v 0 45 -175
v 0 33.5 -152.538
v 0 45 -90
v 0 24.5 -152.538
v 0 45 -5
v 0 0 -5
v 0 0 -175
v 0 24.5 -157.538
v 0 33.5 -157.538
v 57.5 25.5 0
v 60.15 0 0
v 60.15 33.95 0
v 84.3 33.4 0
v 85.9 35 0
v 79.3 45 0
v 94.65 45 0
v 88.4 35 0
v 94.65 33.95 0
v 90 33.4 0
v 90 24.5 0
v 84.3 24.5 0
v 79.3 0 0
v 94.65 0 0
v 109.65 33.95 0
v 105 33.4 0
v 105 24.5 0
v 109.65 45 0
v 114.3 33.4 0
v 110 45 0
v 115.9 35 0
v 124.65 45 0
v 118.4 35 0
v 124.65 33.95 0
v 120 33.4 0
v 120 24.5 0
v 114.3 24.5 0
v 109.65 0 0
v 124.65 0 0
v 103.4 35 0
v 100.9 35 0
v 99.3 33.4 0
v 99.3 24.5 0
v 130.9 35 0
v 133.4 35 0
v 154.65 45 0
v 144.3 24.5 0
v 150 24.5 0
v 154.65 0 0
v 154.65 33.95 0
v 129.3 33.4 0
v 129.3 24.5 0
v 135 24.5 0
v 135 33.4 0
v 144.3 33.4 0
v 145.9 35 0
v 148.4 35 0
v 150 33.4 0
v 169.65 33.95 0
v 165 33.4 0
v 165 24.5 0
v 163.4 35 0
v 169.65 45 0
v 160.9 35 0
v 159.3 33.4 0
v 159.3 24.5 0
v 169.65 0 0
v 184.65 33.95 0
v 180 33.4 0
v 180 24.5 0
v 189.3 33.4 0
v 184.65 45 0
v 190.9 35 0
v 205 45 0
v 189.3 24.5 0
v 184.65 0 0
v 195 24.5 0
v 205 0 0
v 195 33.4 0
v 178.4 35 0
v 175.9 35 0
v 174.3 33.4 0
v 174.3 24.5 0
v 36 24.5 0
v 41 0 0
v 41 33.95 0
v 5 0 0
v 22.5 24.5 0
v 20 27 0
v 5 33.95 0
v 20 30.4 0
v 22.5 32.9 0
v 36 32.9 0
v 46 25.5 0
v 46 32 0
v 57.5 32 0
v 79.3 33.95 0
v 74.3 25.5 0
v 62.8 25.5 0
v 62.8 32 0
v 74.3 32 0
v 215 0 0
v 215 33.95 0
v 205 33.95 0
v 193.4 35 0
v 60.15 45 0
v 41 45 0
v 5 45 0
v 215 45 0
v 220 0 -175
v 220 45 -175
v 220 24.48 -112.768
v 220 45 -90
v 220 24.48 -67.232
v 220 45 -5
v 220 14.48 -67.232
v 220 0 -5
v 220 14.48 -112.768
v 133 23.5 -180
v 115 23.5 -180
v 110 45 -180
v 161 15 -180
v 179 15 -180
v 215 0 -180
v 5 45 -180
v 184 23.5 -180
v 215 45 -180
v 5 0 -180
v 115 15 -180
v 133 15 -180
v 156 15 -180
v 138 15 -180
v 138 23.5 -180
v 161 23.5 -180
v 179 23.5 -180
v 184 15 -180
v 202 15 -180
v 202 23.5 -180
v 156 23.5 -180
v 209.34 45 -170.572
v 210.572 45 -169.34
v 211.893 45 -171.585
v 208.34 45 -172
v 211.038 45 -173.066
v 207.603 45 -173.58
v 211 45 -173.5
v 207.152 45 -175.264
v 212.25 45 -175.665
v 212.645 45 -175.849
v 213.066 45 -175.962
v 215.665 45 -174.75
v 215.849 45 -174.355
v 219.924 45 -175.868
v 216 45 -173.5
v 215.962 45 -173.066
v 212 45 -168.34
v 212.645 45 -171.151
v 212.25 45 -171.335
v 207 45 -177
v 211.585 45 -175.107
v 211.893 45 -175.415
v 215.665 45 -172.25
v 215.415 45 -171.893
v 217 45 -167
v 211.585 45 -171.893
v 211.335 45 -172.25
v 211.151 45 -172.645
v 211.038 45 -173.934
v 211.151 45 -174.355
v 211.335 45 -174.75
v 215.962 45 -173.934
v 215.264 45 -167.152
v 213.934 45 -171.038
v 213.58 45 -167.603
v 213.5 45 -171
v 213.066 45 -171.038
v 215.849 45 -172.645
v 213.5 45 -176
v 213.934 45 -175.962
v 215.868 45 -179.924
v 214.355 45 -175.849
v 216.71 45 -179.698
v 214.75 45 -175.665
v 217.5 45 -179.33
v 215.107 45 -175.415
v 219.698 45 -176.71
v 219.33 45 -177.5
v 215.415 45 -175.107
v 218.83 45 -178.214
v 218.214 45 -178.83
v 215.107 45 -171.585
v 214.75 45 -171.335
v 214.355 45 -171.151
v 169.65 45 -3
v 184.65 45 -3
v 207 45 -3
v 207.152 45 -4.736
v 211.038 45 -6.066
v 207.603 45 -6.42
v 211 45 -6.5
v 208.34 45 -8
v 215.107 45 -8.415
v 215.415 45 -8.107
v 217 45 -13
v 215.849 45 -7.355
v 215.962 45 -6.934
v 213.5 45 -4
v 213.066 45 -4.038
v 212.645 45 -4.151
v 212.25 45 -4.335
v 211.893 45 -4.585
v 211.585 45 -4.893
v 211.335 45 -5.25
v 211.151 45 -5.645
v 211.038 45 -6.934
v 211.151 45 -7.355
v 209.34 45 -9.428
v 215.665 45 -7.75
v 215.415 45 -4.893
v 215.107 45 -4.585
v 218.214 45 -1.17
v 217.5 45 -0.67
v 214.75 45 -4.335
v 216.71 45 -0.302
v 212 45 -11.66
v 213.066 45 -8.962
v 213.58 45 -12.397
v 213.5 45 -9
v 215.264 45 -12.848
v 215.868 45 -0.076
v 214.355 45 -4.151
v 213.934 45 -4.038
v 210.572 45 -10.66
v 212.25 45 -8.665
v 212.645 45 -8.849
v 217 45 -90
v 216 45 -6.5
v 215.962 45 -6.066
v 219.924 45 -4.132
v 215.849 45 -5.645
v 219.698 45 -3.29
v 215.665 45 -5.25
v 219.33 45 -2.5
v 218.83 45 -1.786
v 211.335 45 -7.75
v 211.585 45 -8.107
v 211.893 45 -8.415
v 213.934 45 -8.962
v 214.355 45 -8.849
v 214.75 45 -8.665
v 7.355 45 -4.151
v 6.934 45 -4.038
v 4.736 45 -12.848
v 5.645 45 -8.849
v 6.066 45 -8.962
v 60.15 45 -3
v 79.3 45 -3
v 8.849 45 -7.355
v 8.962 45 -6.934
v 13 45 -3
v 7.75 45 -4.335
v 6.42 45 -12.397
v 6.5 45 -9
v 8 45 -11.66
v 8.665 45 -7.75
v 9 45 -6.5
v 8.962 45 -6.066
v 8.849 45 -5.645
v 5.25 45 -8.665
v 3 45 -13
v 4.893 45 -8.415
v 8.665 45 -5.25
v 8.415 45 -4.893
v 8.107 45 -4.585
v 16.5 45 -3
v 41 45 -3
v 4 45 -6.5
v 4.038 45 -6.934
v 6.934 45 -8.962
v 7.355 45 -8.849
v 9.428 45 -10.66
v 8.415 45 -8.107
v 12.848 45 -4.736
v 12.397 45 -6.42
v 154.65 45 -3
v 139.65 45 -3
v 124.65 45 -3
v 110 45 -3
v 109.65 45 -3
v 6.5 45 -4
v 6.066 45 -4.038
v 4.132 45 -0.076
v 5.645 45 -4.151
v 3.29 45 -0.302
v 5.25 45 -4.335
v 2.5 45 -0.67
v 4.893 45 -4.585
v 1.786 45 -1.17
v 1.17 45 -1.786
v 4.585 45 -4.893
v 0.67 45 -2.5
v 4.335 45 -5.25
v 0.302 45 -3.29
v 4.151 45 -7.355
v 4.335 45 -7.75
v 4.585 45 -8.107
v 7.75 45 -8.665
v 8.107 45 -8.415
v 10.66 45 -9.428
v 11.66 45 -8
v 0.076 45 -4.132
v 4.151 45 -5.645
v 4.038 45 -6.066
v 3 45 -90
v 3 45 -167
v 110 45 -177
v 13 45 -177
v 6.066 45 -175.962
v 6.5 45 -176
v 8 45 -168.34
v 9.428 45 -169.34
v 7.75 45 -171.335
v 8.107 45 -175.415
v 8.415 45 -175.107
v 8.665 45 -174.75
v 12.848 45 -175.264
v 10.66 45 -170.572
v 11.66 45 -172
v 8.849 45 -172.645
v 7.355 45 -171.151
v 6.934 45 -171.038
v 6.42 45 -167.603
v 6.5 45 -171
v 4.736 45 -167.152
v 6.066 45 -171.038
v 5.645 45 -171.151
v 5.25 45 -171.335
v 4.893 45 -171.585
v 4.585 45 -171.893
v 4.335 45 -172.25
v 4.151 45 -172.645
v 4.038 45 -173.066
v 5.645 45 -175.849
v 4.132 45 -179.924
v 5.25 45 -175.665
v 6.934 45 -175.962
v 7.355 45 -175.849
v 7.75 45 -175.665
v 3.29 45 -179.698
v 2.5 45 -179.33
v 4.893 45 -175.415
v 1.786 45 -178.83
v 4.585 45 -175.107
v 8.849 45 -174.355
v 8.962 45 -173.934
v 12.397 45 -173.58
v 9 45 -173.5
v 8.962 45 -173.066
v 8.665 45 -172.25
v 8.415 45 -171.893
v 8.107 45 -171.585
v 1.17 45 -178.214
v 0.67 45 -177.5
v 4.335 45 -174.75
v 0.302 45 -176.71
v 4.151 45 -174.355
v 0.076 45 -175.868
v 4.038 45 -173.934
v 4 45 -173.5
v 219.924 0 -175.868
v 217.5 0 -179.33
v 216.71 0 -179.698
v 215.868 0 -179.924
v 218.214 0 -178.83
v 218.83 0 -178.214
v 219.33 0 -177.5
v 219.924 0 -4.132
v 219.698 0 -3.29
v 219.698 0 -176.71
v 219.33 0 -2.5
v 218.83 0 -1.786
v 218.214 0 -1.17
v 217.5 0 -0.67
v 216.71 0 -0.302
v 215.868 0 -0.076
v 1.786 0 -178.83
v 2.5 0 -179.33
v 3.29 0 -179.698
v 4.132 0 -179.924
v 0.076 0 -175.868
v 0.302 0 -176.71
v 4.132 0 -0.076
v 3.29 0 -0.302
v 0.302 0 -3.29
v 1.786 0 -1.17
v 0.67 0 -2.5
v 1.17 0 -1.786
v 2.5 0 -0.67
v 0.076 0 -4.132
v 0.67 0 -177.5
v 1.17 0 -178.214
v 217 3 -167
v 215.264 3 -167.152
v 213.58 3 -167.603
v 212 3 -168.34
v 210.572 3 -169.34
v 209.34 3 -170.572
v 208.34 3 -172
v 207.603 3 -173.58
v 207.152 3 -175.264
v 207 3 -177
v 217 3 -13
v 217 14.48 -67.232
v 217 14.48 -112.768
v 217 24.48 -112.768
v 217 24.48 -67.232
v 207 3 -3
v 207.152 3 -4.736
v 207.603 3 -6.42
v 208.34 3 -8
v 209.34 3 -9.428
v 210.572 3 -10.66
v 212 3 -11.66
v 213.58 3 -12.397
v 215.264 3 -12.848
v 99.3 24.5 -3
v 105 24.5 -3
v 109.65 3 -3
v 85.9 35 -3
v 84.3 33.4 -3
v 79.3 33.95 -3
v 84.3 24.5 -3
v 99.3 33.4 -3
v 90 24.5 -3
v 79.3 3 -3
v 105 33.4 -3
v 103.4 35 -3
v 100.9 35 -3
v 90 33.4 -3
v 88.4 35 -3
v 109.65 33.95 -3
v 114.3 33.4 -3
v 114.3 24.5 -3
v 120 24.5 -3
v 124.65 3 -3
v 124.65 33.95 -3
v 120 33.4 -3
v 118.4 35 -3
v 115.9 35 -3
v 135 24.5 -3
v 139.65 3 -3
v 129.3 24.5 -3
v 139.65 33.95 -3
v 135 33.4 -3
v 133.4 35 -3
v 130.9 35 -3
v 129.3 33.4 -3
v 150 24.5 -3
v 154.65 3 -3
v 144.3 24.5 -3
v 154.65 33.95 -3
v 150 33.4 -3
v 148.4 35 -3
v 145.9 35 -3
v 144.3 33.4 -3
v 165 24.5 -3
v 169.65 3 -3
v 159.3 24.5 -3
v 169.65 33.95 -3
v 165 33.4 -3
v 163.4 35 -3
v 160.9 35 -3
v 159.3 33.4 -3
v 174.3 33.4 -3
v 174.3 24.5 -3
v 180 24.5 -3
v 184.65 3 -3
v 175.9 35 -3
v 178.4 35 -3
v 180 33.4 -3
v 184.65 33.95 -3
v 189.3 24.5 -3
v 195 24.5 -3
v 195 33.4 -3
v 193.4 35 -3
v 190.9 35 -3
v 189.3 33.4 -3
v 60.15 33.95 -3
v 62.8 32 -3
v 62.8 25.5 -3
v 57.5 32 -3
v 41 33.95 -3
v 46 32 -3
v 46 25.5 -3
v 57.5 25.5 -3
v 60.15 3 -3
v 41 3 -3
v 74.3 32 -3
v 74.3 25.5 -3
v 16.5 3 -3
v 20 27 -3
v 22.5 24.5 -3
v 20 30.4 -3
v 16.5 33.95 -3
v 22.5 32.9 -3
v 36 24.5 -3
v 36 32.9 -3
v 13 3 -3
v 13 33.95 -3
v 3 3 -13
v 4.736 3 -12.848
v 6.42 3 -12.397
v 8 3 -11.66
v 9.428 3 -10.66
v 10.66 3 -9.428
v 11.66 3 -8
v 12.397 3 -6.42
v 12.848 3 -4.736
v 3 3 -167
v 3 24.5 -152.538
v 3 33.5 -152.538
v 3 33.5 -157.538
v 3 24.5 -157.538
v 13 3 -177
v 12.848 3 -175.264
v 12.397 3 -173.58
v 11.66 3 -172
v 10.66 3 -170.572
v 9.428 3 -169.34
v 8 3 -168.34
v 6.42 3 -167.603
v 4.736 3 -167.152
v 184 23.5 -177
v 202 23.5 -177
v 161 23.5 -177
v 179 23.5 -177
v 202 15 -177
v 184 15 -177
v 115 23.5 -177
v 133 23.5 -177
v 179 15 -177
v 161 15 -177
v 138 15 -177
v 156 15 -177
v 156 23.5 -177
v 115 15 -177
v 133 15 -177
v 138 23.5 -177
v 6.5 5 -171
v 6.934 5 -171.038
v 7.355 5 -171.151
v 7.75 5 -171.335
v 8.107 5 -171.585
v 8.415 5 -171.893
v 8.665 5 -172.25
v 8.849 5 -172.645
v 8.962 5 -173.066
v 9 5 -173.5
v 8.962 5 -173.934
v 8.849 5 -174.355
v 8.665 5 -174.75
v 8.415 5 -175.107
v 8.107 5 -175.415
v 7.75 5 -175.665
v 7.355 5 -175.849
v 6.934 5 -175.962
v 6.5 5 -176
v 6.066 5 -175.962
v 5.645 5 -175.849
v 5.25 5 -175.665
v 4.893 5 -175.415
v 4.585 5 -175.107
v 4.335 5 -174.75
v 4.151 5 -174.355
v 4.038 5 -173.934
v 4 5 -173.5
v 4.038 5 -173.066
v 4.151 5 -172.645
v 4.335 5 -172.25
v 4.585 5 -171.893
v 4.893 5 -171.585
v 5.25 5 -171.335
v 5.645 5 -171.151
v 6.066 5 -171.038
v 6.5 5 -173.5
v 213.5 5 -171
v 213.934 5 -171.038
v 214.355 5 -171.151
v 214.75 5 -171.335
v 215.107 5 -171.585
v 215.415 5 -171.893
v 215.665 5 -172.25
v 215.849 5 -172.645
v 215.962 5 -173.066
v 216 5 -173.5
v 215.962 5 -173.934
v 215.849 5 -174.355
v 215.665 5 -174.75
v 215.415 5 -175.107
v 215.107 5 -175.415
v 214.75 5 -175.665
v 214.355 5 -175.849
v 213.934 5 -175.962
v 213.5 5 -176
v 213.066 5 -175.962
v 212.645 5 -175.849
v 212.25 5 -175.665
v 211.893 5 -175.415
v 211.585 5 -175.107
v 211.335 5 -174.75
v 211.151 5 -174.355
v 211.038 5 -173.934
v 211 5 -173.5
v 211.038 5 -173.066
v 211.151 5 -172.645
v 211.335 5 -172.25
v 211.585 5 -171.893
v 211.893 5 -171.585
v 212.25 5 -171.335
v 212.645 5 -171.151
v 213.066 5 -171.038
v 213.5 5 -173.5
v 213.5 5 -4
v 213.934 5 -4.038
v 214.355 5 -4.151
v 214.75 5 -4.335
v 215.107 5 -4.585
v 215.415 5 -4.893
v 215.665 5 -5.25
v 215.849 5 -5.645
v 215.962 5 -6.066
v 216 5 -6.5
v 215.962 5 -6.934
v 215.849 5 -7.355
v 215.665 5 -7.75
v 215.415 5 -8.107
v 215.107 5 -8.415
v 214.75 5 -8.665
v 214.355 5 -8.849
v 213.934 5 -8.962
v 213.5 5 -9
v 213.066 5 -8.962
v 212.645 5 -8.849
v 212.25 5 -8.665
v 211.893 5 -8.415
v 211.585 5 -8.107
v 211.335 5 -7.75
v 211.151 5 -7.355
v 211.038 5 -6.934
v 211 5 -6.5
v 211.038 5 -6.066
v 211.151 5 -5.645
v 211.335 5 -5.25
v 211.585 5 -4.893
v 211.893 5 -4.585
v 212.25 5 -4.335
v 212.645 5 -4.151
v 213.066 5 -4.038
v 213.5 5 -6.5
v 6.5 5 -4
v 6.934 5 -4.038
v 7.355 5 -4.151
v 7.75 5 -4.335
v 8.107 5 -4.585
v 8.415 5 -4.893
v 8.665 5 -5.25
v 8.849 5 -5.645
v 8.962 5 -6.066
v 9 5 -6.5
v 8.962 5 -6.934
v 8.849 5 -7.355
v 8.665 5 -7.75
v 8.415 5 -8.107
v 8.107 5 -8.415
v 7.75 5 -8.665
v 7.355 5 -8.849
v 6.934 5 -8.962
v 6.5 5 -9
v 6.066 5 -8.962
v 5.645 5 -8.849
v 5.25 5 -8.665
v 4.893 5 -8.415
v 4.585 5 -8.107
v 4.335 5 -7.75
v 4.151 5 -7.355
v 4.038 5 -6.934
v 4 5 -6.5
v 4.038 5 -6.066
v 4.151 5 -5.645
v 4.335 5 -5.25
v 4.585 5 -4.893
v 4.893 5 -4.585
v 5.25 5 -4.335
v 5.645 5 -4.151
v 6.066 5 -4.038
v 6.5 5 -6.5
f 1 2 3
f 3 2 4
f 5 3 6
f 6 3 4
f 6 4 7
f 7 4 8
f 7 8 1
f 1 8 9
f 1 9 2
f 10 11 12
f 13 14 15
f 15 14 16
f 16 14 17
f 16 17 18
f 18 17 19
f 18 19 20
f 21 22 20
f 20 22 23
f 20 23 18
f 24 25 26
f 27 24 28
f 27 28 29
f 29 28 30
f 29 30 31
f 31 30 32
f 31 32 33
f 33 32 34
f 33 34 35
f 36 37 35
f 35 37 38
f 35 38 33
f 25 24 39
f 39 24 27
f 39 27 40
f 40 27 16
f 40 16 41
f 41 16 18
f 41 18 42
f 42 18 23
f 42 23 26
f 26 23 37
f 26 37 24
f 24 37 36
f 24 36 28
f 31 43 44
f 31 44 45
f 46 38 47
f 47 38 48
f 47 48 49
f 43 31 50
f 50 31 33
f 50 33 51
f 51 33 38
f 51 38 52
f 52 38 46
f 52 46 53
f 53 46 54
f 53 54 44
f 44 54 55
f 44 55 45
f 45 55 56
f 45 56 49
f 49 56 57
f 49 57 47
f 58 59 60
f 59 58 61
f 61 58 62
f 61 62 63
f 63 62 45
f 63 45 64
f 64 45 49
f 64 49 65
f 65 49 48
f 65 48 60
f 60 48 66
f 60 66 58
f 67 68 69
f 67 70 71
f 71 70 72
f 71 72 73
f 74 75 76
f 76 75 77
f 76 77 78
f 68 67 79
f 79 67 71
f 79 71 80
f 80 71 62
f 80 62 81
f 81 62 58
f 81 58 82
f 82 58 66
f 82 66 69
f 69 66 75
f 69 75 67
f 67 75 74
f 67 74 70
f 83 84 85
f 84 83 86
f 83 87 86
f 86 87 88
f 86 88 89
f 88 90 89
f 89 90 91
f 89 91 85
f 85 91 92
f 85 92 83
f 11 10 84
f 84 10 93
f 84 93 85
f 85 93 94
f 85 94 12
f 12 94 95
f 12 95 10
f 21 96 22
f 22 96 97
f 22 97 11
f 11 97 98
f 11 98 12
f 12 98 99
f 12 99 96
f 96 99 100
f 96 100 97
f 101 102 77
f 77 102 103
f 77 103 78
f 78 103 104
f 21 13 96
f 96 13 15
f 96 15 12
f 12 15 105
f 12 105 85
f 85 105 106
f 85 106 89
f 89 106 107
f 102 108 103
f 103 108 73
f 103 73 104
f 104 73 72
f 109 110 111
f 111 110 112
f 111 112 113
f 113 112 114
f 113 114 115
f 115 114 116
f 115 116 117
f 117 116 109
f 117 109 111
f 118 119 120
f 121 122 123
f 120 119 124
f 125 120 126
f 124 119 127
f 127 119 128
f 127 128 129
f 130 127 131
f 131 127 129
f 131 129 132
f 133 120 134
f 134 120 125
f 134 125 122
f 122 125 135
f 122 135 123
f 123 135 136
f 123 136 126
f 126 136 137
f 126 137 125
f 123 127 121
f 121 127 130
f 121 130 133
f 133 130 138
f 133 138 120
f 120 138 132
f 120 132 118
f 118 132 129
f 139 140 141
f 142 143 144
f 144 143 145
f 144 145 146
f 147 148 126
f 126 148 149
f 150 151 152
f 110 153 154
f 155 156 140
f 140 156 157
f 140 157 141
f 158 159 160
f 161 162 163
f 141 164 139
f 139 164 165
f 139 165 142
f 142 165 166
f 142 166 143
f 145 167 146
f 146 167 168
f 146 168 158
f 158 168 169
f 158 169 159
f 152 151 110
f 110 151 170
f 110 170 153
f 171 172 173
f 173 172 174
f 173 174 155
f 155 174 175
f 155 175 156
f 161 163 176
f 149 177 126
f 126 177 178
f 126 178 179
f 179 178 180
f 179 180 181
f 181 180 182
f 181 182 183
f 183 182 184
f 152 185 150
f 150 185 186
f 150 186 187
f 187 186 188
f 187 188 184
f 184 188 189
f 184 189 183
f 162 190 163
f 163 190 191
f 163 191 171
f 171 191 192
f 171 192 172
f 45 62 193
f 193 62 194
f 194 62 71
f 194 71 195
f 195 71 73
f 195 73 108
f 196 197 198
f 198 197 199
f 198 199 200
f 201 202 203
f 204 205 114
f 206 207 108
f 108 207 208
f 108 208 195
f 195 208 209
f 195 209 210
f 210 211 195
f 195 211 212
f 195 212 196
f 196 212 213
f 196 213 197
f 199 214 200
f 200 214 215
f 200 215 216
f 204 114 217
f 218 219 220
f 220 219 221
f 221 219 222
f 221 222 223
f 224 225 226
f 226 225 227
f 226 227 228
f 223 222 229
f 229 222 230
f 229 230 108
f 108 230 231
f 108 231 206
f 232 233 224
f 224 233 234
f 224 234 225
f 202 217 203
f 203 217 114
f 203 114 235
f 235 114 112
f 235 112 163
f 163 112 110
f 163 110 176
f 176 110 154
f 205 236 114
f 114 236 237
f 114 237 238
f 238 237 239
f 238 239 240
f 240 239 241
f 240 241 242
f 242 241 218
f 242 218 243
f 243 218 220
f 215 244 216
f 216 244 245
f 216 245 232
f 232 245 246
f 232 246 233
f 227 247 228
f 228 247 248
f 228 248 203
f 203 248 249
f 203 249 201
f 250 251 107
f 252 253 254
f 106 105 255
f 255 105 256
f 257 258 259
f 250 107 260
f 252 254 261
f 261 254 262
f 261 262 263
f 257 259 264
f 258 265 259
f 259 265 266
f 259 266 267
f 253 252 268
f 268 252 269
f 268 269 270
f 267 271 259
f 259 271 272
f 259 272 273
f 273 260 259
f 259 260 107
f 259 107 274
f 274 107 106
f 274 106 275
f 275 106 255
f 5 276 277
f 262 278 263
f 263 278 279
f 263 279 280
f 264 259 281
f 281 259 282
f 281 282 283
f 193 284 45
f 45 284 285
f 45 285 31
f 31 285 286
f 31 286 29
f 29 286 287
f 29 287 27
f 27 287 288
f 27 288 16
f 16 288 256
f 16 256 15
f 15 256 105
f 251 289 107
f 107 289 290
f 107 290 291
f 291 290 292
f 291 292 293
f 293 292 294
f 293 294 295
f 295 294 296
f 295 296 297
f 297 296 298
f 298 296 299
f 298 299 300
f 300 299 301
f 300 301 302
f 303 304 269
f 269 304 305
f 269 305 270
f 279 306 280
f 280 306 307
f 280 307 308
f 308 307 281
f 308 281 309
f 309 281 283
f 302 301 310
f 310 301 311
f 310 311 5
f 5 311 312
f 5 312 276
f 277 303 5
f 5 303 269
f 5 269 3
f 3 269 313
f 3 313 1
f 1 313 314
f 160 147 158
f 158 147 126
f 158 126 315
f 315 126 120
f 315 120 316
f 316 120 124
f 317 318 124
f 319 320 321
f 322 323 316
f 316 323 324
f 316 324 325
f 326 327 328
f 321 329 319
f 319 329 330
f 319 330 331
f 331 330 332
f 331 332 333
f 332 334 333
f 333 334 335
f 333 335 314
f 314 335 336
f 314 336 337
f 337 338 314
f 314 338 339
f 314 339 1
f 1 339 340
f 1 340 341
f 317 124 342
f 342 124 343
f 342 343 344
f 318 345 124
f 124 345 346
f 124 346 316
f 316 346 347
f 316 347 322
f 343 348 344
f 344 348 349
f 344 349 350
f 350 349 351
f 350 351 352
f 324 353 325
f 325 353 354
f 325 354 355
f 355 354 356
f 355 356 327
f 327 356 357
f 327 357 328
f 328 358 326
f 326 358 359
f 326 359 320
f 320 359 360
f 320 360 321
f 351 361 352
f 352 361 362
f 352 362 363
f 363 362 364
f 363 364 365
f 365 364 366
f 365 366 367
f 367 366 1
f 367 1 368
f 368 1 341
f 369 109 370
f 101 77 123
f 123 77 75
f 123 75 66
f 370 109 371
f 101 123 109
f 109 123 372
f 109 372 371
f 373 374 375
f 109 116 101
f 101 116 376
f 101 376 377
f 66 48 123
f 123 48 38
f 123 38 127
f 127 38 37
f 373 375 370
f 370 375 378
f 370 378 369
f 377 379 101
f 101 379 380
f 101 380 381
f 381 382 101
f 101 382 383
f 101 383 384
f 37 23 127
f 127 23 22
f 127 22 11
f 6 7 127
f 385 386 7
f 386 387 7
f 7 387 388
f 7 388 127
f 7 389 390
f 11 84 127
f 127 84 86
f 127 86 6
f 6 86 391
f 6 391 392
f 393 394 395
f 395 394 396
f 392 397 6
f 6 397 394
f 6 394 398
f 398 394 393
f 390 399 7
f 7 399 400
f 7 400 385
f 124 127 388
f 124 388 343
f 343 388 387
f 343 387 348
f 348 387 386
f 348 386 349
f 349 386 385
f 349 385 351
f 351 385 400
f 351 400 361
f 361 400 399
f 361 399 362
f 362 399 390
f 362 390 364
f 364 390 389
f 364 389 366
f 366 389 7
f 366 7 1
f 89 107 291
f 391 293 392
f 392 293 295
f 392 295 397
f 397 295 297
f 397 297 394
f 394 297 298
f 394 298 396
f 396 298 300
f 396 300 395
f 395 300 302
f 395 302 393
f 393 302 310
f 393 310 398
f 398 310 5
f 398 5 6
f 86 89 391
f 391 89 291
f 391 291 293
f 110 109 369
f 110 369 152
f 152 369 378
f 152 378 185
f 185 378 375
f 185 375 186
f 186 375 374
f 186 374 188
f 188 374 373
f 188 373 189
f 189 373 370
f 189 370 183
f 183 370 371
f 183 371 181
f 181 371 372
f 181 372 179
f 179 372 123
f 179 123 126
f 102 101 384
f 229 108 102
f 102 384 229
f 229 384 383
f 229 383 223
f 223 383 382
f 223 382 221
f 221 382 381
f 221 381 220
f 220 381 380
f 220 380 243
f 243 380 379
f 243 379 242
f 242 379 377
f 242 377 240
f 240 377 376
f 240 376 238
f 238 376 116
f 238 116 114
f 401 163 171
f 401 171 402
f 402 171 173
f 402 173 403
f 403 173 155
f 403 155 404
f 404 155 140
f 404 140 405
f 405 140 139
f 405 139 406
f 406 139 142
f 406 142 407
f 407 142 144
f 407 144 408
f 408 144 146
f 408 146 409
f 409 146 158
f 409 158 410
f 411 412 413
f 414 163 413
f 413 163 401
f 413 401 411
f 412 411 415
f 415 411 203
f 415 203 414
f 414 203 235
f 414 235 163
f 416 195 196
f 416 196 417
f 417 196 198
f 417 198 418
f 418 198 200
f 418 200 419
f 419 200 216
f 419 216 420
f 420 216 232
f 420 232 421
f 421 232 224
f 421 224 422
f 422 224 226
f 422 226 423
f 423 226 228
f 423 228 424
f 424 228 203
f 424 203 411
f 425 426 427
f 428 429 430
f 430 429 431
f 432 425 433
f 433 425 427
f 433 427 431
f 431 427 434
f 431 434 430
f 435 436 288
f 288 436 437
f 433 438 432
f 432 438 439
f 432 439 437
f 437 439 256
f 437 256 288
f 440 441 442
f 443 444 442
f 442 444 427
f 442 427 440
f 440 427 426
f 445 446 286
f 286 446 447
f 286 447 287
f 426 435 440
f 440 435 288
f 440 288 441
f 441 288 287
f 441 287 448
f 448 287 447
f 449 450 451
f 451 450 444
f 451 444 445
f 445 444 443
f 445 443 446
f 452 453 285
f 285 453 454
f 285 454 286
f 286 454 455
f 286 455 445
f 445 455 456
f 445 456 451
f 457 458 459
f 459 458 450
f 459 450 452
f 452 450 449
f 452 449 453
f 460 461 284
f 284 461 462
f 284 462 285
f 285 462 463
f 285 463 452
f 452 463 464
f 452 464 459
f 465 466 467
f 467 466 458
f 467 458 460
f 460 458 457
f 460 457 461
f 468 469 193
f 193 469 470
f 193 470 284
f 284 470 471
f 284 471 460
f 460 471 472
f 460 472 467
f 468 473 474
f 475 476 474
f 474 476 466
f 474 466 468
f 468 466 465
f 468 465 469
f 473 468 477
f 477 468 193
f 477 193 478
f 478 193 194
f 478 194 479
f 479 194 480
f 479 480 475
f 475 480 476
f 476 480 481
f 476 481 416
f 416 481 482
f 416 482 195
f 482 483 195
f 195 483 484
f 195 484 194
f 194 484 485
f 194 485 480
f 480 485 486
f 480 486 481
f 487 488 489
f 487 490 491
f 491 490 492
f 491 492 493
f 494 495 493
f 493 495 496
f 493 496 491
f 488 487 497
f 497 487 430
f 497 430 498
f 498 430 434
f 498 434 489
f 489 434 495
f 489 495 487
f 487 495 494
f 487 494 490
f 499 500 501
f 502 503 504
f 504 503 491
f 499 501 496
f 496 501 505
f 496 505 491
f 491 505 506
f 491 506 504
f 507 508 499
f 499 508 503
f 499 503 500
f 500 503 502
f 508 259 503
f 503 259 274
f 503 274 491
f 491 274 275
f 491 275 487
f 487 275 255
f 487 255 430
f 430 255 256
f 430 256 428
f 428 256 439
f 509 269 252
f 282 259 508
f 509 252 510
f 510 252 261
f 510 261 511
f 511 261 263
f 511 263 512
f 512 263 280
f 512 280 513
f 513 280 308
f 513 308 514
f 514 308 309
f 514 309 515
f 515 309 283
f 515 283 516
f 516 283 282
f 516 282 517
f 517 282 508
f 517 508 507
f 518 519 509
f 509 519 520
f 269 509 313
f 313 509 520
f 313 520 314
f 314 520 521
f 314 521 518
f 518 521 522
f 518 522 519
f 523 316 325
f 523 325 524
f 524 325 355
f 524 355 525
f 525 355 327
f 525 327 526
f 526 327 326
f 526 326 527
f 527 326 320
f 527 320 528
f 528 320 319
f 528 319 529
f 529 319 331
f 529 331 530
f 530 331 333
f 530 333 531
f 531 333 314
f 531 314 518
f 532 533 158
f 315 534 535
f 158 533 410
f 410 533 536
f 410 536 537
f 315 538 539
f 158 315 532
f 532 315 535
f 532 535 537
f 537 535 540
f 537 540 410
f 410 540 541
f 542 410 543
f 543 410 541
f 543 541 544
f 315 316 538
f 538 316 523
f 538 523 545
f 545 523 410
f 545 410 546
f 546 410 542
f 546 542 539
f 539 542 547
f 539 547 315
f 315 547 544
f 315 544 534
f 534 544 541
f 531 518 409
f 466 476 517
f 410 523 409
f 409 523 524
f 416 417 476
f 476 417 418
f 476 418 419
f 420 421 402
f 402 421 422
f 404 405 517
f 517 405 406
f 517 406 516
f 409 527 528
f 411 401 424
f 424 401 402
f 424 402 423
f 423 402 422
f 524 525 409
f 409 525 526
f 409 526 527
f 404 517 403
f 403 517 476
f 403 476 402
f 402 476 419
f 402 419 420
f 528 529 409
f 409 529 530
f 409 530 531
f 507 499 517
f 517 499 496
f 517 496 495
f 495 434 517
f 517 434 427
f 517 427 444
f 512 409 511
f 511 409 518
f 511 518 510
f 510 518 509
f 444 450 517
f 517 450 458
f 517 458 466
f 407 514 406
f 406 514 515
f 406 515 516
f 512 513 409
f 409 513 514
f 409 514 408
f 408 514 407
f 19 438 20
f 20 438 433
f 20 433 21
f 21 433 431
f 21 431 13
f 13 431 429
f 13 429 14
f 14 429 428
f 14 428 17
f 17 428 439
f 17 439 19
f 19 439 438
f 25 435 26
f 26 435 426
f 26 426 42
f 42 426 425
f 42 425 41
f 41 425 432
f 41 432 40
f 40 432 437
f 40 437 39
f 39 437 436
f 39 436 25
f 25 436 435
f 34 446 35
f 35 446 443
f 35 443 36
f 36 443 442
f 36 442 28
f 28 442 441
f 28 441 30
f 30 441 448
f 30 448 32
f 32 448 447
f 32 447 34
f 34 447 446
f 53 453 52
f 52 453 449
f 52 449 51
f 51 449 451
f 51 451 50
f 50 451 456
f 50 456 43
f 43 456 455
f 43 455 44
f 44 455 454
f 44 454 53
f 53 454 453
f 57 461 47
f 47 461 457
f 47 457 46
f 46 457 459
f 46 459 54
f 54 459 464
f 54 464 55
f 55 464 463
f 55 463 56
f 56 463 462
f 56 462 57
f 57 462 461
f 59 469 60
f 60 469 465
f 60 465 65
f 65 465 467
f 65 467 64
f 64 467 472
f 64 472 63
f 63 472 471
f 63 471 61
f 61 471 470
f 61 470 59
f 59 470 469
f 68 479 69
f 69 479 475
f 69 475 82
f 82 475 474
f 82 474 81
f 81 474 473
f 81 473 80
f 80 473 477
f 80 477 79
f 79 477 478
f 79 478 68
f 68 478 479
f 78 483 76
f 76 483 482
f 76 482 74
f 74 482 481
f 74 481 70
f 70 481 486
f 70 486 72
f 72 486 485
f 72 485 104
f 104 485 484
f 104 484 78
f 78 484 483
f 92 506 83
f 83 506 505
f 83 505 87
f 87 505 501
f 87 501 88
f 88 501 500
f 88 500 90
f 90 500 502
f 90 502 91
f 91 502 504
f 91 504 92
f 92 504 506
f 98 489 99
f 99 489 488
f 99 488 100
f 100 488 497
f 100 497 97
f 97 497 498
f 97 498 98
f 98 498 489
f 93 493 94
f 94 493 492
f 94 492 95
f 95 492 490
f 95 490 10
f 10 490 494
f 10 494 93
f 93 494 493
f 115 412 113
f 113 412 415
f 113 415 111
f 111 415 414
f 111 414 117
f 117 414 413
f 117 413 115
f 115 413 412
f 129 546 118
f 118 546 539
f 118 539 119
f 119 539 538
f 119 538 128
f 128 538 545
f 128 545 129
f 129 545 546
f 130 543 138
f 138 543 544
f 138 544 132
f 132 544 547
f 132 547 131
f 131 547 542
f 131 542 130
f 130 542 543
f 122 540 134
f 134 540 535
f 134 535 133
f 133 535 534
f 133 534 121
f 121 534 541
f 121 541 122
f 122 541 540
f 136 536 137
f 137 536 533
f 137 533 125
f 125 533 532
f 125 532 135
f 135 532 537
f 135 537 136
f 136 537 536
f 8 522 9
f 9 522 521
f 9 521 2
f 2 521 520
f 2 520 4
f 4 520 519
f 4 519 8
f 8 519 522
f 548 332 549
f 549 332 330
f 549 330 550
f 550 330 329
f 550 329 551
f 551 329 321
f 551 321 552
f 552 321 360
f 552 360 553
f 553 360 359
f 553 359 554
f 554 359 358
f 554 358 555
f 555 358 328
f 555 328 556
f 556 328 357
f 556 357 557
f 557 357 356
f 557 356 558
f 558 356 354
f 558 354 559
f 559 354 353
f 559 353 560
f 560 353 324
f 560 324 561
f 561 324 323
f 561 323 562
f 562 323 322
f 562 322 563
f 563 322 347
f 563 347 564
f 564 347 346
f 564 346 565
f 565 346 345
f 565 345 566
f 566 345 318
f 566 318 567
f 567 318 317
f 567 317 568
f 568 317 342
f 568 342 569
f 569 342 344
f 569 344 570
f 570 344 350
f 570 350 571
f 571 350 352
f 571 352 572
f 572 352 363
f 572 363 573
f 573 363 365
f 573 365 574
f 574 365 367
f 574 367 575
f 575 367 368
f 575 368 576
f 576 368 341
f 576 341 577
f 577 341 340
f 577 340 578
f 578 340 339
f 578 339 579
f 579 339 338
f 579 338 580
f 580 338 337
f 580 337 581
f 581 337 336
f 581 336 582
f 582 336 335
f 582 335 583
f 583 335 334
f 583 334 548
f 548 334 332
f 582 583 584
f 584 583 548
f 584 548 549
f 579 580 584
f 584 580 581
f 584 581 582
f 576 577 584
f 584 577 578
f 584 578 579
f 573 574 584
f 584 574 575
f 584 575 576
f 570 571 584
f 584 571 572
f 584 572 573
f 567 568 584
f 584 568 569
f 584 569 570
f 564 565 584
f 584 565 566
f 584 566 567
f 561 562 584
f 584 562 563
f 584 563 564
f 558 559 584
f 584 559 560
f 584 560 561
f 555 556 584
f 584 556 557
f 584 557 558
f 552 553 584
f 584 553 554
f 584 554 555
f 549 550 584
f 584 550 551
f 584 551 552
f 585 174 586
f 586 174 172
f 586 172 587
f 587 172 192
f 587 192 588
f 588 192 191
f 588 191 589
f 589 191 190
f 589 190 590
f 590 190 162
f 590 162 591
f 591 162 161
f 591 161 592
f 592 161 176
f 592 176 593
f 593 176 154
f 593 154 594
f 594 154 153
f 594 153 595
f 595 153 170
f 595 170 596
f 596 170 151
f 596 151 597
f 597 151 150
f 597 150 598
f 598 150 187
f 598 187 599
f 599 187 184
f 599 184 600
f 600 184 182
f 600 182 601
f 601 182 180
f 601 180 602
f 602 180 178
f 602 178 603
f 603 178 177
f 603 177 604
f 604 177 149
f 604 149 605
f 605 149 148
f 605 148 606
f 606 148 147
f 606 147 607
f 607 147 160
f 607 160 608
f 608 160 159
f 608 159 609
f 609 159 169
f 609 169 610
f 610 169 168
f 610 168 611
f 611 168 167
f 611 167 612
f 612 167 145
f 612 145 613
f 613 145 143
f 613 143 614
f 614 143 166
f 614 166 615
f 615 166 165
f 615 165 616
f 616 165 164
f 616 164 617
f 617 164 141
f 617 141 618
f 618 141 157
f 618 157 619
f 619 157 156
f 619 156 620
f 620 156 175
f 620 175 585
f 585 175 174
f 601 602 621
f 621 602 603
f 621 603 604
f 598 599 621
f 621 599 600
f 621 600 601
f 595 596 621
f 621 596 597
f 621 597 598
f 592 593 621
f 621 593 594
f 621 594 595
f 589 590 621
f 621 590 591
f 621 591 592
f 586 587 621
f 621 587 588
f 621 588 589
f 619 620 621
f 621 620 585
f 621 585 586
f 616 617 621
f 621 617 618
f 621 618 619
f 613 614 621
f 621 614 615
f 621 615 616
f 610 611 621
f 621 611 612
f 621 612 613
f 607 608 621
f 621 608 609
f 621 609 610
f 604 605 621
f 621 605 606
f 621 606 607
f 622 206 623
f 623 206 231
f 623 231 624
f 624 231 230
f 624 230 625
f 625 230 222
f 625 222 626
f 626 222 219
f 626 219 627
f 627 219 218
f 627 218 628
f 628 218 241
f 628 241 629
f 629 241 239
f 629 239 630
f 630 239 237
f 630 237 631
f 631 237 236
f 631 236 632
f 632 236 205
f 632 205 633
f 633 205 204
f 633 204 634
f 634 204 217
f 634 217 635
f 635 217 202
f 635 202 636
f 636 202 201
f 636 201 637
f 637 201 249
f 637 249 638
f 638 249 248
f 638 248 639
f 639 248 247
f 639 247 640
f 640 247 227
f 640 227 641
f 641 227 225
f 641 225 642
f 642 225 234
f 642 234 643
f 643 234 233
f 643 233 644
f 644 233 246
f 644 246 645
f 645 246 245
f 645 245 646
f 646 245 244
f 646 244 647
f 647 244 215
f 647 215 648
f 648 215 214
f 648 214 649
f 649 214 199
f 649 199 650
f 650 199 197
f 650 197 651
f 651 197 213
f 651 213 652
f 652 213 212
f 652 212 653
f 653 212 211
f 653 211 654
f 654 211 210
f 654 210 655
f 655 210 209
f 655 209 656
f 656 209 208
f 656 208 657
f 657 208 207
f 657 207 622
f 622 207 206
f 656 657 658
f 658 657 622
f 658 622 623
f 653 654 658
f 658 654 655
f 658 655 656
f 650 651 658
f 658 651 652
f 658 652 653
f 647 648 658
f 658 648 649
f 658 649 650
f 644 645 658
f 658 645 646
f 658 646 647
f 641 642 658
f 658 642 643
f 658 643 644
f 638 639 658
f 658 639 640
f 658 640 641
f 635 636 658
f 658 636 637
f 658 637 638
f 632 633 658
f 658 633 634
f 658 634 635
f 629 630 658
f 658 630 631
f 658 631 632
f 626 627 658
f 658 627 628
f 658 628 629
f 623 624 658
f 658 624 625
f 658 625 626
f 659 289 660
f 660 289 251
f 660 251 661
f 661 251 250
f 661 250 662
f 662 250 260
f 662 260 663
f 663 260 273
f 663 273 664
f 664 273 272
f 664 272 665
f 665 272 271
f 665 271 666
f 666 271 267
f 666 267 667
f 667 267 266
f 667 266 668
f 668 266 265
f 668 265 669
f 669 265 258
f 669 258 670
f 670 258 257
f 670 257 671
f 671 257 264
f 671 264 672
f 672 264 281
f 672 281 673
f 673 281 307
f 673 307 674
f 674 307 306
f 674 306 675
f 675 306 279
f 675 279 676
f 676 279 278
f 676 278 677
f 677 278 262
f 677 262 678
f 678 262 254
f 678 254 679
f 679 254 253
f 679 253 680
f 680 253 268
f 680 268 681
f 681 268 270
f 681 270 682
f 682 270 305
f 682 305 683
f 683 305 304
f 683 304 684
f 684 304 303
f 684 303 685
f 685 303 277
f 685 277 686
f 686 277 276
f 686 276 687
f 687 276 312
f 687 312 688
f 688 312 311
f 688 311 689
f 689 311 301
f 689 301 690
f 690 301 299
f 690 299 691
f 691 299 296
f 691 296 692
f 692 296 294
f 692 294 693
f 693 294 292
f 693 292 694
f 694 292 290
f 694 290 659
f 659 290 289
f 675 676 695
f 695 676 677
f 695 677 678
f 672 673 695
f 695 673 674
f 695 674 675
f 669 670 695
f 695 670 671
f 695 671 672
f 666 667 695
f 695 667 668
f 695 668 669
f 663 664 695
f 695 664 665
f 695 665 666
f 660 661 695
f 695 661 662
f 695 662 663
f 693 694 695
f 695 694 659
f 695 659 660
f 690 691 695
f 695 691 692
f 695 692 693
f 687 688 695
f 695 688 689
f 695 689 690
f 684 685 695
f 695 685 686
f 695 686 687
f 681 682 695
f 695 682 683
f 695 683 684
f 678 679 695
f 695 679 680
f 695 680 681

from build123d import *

# Parameters (mm, degrees)
SKETCH1_W           = 220
SKETCH1_H           = 180
BOSS_EXTRUDE1_DEPTH = 45
FILLET1_R           = 5
CUT_EXTRUDE7_DEPTH  = 42
CUT_EXTRUDE2_DEPTH  = 5
CUT_EXTRUDE3_DEPTH  = 5
SKETCH4_W           = 11.5
SKETCH4_H           = 6.5
CUT_EXTRUDE4_DEPTH  = 5
SKETCH5_W           = 45.536818034
SKETCH5_H           = 10
CUT_EXTRUDE5_DEPTH  = 5
SKETCH6_W           = 18
SKETCH6_H           = 8.5
CUT_EXTRUDE6_DEPTH  = 5
SKETCH8_W           = 5
SKETCH8_H           = 9
CUT_EXTRUDE8_DEPTH  = 4.2
SKETCH10_R          = 2.5
CUT_EXTRUDE9_DEPTH  = 40


with BuildPart() as part:
    # Sketch1 → Boss-Extrude1 (new body)
    with BuildSketch(Plane(origin=(0, 0, 0), x_dir=(1, 0, 0), z_dir=(0, 1, 0))):
        with Locations((110, 90)):
            Rectangle(SKETCH1_W, SKETCH1_H)
    extrude(amount=BOSS_EXTRUDE1_DEPTH)

    # Fillet1
    fillet1_edges = [part.edges().sort_by_distance(p)[0] for p in [
        (0, 22.5, -180),
        (220, 22.5, -180),
        (220, 22.5, 0),
        (0, 22.5, 0),
    ]]
    fillet(fillet1_edges, radius=FILLET1_R)

    # Sketch7 → Cut-Extrude7 (cut)
    with BuildSketch(Plane(origin=(0, 45, 0), x_dir=(1, 0, 0), z_dir=(0, 1, 0))):
        with BuildLine():
            Line((207, 177), (13, 177))
            ThreePointArc((13, 177), (10.071067812, 169.928932188), (3, 167))
            Line((3, 167), (3, 13))
            ThreePointArc((3, 13), (10.071067812, 10.071067812), (13, 3))
            Line((13, 3), (207, 3))
            ThreePointArc((207, 3), (209.928932188, 10.071067812), (217, 13))
            Line((217, 13), (217, 167))
            ThreePointArc((217, 167), (209.928932188, 169.928932188), (207, 177))
        make_face()
    extrude(amount=-CUT_EXTRUDE7_DEPTH, mode=Mode.SUBTRACT)

    # Sketch2 → Cut-Extrude2 (cut)
    with BuildSketch(Plane.XY):
        Polygon((175.9, 35), (178.4, 35), (180, 33.4), (180, 24.5), (174.3, 24.5), (174.3, 33.4), align=None)
        Polygon((190.9, 35), (193.4, 35), (195, 33.4), (195, 24.5), (189.3, 24.5), (189.3, 33.4), align=None)
        Polygon((160.9, 35), (163.4, 35), (165, 33.4), (165, 24.5), (159.3, 24.5), (159.3, 33.4), align=None)
        Polygon((145.9, 35), (148.4, 35), (150, 33.4), (150, 24.5), (144.3, 24.5), (144.3, 33.4), align=None)
        Polygon((130.9, 35), (133.4, 35), (135, 33.4), (135, 24.5), (129.3, 24.5), (129.3, 33.4), align=None)
        Polygon((115.9, 35), (118.4, 35), (120, 33.4), (120, 24.5), (114.3, 24.5), (114.3, 33.4), align=None)
        Polygon((100.9, 35), (103.4, 35), (105, 33.4), (105, 24.5), (99.3, 24.5), (99.3, 33.4), align=None)
        Polygon((85.9, 35), (88.4, 35), (90, 33.4), (90, 24.5), (84.3, 24.5), (84.3, 33.4), align=None)
    extrude(amount=-CUT_EXTRUDE2_DEPTH, mode=Mode.SUBTRACT)

    # Sketch3 → Cut-Extrude3 (cut)
    with BuildSketch(Plane.XY):
        Polygon((22.5, 32.9), (36, 32.9), (36, 24.5), (22.5, 24.5), (20, 27), (20, 30.4), align=None)
    extrude(amount=-CUT_EXTRUDE3_DEPTH, mode=Mode.SUBTRACT)

    # Sketch4 → Cut-Extrude4 (cut)
    with BuildSketch(Plane.XY):
        with Locations((51.75, 28.75)):
            Rectangle(SKETCH4_W, SKETCH4_H)
        with Locations((68.55, 28.75)):
            Rectangle(SKETCH4_W, SKETCH4_H)
    extrude(amount=-CUT_EXTRUDE4_DEPTH, mode=Mode.SUBTRACT)

    # Sketch5 → Cut-Extrude5 (cut)
    with BuildSketch(Plane(origin=(220, 0, 0), x_dir=(0, 0, -1), z_dir=(1, 0, 0))):
        with Locations((90, 19.480228536)):
            Rectangle(SKETCH5_W, SKETCH5_H)
    extrude(amount=-CUT_EXTRUDE5_DEPTH, mode=Mode.SUBTRACT)

    # Sketch6 → Cut-Extrude6 (cut)
    with BuildSketch(Plane(origin=(0, 0, -180), x_dir=(-1, 0, 0), z_dir=(0, 0, -1))):
        with Locations((-193, 19.25)):
            Rectangle(SKETCH6_W, SKETCH6_H)
        with Locations((-170, 19.25)):
            Rectangle(SKETCH6_W, SKETCH6_H)
        with Locations((-147, 19.25)):
            Rectangle(SKETCH6_W, SKETCH6_H)
        with Locations((-124, 19.25)):
            Rectangle(SKETCH6_W, SKETCH6_H)
    extrude(amount=-CUT_EXTRUDE6_DEPTH, mode=Mode.SUBTRACT)

    # Sketch8 → Cut-Extrude8 (cut)
    with BuildSketch(Plane.ZY):
        with Locations((-155.038386618, 29)):
            Rectangle(SKETCH8_W, SKETCH8_H)
    extrude(amount=-CUT_EXTRUDE8_DEPTH, mode=Mode.SUBTRACT)

    # Sketch10 → Cut-Extrude9 (cut)
    with BuildSketch(Plane(origin=(0, 45, 0), x_dir=(1, 0, 0), z_dir=(0, 1, 0))):
        with Locations(Location((6.5, 173.5, 0), (0, 0, 270))):
            Circle(SKETCH10_R)
        with Locations(Location((213.5, 173.5, 0), (0, 0, 90))):
            Circle(SKETCH10_R)
        with Locations(Location((213.5, 6.5, 0), (0, 0, 270))):
            Circle(SKETCH10_R)
        with Locations(Location((6.5, 6.5, 0), (0, 0, 90))):
            Circle(SKETCH10_R)
    extrude(amount=-CUT_EXTRUDE9_DEPTH, mode=Mode.SUBTRACT)


solid = part.part
